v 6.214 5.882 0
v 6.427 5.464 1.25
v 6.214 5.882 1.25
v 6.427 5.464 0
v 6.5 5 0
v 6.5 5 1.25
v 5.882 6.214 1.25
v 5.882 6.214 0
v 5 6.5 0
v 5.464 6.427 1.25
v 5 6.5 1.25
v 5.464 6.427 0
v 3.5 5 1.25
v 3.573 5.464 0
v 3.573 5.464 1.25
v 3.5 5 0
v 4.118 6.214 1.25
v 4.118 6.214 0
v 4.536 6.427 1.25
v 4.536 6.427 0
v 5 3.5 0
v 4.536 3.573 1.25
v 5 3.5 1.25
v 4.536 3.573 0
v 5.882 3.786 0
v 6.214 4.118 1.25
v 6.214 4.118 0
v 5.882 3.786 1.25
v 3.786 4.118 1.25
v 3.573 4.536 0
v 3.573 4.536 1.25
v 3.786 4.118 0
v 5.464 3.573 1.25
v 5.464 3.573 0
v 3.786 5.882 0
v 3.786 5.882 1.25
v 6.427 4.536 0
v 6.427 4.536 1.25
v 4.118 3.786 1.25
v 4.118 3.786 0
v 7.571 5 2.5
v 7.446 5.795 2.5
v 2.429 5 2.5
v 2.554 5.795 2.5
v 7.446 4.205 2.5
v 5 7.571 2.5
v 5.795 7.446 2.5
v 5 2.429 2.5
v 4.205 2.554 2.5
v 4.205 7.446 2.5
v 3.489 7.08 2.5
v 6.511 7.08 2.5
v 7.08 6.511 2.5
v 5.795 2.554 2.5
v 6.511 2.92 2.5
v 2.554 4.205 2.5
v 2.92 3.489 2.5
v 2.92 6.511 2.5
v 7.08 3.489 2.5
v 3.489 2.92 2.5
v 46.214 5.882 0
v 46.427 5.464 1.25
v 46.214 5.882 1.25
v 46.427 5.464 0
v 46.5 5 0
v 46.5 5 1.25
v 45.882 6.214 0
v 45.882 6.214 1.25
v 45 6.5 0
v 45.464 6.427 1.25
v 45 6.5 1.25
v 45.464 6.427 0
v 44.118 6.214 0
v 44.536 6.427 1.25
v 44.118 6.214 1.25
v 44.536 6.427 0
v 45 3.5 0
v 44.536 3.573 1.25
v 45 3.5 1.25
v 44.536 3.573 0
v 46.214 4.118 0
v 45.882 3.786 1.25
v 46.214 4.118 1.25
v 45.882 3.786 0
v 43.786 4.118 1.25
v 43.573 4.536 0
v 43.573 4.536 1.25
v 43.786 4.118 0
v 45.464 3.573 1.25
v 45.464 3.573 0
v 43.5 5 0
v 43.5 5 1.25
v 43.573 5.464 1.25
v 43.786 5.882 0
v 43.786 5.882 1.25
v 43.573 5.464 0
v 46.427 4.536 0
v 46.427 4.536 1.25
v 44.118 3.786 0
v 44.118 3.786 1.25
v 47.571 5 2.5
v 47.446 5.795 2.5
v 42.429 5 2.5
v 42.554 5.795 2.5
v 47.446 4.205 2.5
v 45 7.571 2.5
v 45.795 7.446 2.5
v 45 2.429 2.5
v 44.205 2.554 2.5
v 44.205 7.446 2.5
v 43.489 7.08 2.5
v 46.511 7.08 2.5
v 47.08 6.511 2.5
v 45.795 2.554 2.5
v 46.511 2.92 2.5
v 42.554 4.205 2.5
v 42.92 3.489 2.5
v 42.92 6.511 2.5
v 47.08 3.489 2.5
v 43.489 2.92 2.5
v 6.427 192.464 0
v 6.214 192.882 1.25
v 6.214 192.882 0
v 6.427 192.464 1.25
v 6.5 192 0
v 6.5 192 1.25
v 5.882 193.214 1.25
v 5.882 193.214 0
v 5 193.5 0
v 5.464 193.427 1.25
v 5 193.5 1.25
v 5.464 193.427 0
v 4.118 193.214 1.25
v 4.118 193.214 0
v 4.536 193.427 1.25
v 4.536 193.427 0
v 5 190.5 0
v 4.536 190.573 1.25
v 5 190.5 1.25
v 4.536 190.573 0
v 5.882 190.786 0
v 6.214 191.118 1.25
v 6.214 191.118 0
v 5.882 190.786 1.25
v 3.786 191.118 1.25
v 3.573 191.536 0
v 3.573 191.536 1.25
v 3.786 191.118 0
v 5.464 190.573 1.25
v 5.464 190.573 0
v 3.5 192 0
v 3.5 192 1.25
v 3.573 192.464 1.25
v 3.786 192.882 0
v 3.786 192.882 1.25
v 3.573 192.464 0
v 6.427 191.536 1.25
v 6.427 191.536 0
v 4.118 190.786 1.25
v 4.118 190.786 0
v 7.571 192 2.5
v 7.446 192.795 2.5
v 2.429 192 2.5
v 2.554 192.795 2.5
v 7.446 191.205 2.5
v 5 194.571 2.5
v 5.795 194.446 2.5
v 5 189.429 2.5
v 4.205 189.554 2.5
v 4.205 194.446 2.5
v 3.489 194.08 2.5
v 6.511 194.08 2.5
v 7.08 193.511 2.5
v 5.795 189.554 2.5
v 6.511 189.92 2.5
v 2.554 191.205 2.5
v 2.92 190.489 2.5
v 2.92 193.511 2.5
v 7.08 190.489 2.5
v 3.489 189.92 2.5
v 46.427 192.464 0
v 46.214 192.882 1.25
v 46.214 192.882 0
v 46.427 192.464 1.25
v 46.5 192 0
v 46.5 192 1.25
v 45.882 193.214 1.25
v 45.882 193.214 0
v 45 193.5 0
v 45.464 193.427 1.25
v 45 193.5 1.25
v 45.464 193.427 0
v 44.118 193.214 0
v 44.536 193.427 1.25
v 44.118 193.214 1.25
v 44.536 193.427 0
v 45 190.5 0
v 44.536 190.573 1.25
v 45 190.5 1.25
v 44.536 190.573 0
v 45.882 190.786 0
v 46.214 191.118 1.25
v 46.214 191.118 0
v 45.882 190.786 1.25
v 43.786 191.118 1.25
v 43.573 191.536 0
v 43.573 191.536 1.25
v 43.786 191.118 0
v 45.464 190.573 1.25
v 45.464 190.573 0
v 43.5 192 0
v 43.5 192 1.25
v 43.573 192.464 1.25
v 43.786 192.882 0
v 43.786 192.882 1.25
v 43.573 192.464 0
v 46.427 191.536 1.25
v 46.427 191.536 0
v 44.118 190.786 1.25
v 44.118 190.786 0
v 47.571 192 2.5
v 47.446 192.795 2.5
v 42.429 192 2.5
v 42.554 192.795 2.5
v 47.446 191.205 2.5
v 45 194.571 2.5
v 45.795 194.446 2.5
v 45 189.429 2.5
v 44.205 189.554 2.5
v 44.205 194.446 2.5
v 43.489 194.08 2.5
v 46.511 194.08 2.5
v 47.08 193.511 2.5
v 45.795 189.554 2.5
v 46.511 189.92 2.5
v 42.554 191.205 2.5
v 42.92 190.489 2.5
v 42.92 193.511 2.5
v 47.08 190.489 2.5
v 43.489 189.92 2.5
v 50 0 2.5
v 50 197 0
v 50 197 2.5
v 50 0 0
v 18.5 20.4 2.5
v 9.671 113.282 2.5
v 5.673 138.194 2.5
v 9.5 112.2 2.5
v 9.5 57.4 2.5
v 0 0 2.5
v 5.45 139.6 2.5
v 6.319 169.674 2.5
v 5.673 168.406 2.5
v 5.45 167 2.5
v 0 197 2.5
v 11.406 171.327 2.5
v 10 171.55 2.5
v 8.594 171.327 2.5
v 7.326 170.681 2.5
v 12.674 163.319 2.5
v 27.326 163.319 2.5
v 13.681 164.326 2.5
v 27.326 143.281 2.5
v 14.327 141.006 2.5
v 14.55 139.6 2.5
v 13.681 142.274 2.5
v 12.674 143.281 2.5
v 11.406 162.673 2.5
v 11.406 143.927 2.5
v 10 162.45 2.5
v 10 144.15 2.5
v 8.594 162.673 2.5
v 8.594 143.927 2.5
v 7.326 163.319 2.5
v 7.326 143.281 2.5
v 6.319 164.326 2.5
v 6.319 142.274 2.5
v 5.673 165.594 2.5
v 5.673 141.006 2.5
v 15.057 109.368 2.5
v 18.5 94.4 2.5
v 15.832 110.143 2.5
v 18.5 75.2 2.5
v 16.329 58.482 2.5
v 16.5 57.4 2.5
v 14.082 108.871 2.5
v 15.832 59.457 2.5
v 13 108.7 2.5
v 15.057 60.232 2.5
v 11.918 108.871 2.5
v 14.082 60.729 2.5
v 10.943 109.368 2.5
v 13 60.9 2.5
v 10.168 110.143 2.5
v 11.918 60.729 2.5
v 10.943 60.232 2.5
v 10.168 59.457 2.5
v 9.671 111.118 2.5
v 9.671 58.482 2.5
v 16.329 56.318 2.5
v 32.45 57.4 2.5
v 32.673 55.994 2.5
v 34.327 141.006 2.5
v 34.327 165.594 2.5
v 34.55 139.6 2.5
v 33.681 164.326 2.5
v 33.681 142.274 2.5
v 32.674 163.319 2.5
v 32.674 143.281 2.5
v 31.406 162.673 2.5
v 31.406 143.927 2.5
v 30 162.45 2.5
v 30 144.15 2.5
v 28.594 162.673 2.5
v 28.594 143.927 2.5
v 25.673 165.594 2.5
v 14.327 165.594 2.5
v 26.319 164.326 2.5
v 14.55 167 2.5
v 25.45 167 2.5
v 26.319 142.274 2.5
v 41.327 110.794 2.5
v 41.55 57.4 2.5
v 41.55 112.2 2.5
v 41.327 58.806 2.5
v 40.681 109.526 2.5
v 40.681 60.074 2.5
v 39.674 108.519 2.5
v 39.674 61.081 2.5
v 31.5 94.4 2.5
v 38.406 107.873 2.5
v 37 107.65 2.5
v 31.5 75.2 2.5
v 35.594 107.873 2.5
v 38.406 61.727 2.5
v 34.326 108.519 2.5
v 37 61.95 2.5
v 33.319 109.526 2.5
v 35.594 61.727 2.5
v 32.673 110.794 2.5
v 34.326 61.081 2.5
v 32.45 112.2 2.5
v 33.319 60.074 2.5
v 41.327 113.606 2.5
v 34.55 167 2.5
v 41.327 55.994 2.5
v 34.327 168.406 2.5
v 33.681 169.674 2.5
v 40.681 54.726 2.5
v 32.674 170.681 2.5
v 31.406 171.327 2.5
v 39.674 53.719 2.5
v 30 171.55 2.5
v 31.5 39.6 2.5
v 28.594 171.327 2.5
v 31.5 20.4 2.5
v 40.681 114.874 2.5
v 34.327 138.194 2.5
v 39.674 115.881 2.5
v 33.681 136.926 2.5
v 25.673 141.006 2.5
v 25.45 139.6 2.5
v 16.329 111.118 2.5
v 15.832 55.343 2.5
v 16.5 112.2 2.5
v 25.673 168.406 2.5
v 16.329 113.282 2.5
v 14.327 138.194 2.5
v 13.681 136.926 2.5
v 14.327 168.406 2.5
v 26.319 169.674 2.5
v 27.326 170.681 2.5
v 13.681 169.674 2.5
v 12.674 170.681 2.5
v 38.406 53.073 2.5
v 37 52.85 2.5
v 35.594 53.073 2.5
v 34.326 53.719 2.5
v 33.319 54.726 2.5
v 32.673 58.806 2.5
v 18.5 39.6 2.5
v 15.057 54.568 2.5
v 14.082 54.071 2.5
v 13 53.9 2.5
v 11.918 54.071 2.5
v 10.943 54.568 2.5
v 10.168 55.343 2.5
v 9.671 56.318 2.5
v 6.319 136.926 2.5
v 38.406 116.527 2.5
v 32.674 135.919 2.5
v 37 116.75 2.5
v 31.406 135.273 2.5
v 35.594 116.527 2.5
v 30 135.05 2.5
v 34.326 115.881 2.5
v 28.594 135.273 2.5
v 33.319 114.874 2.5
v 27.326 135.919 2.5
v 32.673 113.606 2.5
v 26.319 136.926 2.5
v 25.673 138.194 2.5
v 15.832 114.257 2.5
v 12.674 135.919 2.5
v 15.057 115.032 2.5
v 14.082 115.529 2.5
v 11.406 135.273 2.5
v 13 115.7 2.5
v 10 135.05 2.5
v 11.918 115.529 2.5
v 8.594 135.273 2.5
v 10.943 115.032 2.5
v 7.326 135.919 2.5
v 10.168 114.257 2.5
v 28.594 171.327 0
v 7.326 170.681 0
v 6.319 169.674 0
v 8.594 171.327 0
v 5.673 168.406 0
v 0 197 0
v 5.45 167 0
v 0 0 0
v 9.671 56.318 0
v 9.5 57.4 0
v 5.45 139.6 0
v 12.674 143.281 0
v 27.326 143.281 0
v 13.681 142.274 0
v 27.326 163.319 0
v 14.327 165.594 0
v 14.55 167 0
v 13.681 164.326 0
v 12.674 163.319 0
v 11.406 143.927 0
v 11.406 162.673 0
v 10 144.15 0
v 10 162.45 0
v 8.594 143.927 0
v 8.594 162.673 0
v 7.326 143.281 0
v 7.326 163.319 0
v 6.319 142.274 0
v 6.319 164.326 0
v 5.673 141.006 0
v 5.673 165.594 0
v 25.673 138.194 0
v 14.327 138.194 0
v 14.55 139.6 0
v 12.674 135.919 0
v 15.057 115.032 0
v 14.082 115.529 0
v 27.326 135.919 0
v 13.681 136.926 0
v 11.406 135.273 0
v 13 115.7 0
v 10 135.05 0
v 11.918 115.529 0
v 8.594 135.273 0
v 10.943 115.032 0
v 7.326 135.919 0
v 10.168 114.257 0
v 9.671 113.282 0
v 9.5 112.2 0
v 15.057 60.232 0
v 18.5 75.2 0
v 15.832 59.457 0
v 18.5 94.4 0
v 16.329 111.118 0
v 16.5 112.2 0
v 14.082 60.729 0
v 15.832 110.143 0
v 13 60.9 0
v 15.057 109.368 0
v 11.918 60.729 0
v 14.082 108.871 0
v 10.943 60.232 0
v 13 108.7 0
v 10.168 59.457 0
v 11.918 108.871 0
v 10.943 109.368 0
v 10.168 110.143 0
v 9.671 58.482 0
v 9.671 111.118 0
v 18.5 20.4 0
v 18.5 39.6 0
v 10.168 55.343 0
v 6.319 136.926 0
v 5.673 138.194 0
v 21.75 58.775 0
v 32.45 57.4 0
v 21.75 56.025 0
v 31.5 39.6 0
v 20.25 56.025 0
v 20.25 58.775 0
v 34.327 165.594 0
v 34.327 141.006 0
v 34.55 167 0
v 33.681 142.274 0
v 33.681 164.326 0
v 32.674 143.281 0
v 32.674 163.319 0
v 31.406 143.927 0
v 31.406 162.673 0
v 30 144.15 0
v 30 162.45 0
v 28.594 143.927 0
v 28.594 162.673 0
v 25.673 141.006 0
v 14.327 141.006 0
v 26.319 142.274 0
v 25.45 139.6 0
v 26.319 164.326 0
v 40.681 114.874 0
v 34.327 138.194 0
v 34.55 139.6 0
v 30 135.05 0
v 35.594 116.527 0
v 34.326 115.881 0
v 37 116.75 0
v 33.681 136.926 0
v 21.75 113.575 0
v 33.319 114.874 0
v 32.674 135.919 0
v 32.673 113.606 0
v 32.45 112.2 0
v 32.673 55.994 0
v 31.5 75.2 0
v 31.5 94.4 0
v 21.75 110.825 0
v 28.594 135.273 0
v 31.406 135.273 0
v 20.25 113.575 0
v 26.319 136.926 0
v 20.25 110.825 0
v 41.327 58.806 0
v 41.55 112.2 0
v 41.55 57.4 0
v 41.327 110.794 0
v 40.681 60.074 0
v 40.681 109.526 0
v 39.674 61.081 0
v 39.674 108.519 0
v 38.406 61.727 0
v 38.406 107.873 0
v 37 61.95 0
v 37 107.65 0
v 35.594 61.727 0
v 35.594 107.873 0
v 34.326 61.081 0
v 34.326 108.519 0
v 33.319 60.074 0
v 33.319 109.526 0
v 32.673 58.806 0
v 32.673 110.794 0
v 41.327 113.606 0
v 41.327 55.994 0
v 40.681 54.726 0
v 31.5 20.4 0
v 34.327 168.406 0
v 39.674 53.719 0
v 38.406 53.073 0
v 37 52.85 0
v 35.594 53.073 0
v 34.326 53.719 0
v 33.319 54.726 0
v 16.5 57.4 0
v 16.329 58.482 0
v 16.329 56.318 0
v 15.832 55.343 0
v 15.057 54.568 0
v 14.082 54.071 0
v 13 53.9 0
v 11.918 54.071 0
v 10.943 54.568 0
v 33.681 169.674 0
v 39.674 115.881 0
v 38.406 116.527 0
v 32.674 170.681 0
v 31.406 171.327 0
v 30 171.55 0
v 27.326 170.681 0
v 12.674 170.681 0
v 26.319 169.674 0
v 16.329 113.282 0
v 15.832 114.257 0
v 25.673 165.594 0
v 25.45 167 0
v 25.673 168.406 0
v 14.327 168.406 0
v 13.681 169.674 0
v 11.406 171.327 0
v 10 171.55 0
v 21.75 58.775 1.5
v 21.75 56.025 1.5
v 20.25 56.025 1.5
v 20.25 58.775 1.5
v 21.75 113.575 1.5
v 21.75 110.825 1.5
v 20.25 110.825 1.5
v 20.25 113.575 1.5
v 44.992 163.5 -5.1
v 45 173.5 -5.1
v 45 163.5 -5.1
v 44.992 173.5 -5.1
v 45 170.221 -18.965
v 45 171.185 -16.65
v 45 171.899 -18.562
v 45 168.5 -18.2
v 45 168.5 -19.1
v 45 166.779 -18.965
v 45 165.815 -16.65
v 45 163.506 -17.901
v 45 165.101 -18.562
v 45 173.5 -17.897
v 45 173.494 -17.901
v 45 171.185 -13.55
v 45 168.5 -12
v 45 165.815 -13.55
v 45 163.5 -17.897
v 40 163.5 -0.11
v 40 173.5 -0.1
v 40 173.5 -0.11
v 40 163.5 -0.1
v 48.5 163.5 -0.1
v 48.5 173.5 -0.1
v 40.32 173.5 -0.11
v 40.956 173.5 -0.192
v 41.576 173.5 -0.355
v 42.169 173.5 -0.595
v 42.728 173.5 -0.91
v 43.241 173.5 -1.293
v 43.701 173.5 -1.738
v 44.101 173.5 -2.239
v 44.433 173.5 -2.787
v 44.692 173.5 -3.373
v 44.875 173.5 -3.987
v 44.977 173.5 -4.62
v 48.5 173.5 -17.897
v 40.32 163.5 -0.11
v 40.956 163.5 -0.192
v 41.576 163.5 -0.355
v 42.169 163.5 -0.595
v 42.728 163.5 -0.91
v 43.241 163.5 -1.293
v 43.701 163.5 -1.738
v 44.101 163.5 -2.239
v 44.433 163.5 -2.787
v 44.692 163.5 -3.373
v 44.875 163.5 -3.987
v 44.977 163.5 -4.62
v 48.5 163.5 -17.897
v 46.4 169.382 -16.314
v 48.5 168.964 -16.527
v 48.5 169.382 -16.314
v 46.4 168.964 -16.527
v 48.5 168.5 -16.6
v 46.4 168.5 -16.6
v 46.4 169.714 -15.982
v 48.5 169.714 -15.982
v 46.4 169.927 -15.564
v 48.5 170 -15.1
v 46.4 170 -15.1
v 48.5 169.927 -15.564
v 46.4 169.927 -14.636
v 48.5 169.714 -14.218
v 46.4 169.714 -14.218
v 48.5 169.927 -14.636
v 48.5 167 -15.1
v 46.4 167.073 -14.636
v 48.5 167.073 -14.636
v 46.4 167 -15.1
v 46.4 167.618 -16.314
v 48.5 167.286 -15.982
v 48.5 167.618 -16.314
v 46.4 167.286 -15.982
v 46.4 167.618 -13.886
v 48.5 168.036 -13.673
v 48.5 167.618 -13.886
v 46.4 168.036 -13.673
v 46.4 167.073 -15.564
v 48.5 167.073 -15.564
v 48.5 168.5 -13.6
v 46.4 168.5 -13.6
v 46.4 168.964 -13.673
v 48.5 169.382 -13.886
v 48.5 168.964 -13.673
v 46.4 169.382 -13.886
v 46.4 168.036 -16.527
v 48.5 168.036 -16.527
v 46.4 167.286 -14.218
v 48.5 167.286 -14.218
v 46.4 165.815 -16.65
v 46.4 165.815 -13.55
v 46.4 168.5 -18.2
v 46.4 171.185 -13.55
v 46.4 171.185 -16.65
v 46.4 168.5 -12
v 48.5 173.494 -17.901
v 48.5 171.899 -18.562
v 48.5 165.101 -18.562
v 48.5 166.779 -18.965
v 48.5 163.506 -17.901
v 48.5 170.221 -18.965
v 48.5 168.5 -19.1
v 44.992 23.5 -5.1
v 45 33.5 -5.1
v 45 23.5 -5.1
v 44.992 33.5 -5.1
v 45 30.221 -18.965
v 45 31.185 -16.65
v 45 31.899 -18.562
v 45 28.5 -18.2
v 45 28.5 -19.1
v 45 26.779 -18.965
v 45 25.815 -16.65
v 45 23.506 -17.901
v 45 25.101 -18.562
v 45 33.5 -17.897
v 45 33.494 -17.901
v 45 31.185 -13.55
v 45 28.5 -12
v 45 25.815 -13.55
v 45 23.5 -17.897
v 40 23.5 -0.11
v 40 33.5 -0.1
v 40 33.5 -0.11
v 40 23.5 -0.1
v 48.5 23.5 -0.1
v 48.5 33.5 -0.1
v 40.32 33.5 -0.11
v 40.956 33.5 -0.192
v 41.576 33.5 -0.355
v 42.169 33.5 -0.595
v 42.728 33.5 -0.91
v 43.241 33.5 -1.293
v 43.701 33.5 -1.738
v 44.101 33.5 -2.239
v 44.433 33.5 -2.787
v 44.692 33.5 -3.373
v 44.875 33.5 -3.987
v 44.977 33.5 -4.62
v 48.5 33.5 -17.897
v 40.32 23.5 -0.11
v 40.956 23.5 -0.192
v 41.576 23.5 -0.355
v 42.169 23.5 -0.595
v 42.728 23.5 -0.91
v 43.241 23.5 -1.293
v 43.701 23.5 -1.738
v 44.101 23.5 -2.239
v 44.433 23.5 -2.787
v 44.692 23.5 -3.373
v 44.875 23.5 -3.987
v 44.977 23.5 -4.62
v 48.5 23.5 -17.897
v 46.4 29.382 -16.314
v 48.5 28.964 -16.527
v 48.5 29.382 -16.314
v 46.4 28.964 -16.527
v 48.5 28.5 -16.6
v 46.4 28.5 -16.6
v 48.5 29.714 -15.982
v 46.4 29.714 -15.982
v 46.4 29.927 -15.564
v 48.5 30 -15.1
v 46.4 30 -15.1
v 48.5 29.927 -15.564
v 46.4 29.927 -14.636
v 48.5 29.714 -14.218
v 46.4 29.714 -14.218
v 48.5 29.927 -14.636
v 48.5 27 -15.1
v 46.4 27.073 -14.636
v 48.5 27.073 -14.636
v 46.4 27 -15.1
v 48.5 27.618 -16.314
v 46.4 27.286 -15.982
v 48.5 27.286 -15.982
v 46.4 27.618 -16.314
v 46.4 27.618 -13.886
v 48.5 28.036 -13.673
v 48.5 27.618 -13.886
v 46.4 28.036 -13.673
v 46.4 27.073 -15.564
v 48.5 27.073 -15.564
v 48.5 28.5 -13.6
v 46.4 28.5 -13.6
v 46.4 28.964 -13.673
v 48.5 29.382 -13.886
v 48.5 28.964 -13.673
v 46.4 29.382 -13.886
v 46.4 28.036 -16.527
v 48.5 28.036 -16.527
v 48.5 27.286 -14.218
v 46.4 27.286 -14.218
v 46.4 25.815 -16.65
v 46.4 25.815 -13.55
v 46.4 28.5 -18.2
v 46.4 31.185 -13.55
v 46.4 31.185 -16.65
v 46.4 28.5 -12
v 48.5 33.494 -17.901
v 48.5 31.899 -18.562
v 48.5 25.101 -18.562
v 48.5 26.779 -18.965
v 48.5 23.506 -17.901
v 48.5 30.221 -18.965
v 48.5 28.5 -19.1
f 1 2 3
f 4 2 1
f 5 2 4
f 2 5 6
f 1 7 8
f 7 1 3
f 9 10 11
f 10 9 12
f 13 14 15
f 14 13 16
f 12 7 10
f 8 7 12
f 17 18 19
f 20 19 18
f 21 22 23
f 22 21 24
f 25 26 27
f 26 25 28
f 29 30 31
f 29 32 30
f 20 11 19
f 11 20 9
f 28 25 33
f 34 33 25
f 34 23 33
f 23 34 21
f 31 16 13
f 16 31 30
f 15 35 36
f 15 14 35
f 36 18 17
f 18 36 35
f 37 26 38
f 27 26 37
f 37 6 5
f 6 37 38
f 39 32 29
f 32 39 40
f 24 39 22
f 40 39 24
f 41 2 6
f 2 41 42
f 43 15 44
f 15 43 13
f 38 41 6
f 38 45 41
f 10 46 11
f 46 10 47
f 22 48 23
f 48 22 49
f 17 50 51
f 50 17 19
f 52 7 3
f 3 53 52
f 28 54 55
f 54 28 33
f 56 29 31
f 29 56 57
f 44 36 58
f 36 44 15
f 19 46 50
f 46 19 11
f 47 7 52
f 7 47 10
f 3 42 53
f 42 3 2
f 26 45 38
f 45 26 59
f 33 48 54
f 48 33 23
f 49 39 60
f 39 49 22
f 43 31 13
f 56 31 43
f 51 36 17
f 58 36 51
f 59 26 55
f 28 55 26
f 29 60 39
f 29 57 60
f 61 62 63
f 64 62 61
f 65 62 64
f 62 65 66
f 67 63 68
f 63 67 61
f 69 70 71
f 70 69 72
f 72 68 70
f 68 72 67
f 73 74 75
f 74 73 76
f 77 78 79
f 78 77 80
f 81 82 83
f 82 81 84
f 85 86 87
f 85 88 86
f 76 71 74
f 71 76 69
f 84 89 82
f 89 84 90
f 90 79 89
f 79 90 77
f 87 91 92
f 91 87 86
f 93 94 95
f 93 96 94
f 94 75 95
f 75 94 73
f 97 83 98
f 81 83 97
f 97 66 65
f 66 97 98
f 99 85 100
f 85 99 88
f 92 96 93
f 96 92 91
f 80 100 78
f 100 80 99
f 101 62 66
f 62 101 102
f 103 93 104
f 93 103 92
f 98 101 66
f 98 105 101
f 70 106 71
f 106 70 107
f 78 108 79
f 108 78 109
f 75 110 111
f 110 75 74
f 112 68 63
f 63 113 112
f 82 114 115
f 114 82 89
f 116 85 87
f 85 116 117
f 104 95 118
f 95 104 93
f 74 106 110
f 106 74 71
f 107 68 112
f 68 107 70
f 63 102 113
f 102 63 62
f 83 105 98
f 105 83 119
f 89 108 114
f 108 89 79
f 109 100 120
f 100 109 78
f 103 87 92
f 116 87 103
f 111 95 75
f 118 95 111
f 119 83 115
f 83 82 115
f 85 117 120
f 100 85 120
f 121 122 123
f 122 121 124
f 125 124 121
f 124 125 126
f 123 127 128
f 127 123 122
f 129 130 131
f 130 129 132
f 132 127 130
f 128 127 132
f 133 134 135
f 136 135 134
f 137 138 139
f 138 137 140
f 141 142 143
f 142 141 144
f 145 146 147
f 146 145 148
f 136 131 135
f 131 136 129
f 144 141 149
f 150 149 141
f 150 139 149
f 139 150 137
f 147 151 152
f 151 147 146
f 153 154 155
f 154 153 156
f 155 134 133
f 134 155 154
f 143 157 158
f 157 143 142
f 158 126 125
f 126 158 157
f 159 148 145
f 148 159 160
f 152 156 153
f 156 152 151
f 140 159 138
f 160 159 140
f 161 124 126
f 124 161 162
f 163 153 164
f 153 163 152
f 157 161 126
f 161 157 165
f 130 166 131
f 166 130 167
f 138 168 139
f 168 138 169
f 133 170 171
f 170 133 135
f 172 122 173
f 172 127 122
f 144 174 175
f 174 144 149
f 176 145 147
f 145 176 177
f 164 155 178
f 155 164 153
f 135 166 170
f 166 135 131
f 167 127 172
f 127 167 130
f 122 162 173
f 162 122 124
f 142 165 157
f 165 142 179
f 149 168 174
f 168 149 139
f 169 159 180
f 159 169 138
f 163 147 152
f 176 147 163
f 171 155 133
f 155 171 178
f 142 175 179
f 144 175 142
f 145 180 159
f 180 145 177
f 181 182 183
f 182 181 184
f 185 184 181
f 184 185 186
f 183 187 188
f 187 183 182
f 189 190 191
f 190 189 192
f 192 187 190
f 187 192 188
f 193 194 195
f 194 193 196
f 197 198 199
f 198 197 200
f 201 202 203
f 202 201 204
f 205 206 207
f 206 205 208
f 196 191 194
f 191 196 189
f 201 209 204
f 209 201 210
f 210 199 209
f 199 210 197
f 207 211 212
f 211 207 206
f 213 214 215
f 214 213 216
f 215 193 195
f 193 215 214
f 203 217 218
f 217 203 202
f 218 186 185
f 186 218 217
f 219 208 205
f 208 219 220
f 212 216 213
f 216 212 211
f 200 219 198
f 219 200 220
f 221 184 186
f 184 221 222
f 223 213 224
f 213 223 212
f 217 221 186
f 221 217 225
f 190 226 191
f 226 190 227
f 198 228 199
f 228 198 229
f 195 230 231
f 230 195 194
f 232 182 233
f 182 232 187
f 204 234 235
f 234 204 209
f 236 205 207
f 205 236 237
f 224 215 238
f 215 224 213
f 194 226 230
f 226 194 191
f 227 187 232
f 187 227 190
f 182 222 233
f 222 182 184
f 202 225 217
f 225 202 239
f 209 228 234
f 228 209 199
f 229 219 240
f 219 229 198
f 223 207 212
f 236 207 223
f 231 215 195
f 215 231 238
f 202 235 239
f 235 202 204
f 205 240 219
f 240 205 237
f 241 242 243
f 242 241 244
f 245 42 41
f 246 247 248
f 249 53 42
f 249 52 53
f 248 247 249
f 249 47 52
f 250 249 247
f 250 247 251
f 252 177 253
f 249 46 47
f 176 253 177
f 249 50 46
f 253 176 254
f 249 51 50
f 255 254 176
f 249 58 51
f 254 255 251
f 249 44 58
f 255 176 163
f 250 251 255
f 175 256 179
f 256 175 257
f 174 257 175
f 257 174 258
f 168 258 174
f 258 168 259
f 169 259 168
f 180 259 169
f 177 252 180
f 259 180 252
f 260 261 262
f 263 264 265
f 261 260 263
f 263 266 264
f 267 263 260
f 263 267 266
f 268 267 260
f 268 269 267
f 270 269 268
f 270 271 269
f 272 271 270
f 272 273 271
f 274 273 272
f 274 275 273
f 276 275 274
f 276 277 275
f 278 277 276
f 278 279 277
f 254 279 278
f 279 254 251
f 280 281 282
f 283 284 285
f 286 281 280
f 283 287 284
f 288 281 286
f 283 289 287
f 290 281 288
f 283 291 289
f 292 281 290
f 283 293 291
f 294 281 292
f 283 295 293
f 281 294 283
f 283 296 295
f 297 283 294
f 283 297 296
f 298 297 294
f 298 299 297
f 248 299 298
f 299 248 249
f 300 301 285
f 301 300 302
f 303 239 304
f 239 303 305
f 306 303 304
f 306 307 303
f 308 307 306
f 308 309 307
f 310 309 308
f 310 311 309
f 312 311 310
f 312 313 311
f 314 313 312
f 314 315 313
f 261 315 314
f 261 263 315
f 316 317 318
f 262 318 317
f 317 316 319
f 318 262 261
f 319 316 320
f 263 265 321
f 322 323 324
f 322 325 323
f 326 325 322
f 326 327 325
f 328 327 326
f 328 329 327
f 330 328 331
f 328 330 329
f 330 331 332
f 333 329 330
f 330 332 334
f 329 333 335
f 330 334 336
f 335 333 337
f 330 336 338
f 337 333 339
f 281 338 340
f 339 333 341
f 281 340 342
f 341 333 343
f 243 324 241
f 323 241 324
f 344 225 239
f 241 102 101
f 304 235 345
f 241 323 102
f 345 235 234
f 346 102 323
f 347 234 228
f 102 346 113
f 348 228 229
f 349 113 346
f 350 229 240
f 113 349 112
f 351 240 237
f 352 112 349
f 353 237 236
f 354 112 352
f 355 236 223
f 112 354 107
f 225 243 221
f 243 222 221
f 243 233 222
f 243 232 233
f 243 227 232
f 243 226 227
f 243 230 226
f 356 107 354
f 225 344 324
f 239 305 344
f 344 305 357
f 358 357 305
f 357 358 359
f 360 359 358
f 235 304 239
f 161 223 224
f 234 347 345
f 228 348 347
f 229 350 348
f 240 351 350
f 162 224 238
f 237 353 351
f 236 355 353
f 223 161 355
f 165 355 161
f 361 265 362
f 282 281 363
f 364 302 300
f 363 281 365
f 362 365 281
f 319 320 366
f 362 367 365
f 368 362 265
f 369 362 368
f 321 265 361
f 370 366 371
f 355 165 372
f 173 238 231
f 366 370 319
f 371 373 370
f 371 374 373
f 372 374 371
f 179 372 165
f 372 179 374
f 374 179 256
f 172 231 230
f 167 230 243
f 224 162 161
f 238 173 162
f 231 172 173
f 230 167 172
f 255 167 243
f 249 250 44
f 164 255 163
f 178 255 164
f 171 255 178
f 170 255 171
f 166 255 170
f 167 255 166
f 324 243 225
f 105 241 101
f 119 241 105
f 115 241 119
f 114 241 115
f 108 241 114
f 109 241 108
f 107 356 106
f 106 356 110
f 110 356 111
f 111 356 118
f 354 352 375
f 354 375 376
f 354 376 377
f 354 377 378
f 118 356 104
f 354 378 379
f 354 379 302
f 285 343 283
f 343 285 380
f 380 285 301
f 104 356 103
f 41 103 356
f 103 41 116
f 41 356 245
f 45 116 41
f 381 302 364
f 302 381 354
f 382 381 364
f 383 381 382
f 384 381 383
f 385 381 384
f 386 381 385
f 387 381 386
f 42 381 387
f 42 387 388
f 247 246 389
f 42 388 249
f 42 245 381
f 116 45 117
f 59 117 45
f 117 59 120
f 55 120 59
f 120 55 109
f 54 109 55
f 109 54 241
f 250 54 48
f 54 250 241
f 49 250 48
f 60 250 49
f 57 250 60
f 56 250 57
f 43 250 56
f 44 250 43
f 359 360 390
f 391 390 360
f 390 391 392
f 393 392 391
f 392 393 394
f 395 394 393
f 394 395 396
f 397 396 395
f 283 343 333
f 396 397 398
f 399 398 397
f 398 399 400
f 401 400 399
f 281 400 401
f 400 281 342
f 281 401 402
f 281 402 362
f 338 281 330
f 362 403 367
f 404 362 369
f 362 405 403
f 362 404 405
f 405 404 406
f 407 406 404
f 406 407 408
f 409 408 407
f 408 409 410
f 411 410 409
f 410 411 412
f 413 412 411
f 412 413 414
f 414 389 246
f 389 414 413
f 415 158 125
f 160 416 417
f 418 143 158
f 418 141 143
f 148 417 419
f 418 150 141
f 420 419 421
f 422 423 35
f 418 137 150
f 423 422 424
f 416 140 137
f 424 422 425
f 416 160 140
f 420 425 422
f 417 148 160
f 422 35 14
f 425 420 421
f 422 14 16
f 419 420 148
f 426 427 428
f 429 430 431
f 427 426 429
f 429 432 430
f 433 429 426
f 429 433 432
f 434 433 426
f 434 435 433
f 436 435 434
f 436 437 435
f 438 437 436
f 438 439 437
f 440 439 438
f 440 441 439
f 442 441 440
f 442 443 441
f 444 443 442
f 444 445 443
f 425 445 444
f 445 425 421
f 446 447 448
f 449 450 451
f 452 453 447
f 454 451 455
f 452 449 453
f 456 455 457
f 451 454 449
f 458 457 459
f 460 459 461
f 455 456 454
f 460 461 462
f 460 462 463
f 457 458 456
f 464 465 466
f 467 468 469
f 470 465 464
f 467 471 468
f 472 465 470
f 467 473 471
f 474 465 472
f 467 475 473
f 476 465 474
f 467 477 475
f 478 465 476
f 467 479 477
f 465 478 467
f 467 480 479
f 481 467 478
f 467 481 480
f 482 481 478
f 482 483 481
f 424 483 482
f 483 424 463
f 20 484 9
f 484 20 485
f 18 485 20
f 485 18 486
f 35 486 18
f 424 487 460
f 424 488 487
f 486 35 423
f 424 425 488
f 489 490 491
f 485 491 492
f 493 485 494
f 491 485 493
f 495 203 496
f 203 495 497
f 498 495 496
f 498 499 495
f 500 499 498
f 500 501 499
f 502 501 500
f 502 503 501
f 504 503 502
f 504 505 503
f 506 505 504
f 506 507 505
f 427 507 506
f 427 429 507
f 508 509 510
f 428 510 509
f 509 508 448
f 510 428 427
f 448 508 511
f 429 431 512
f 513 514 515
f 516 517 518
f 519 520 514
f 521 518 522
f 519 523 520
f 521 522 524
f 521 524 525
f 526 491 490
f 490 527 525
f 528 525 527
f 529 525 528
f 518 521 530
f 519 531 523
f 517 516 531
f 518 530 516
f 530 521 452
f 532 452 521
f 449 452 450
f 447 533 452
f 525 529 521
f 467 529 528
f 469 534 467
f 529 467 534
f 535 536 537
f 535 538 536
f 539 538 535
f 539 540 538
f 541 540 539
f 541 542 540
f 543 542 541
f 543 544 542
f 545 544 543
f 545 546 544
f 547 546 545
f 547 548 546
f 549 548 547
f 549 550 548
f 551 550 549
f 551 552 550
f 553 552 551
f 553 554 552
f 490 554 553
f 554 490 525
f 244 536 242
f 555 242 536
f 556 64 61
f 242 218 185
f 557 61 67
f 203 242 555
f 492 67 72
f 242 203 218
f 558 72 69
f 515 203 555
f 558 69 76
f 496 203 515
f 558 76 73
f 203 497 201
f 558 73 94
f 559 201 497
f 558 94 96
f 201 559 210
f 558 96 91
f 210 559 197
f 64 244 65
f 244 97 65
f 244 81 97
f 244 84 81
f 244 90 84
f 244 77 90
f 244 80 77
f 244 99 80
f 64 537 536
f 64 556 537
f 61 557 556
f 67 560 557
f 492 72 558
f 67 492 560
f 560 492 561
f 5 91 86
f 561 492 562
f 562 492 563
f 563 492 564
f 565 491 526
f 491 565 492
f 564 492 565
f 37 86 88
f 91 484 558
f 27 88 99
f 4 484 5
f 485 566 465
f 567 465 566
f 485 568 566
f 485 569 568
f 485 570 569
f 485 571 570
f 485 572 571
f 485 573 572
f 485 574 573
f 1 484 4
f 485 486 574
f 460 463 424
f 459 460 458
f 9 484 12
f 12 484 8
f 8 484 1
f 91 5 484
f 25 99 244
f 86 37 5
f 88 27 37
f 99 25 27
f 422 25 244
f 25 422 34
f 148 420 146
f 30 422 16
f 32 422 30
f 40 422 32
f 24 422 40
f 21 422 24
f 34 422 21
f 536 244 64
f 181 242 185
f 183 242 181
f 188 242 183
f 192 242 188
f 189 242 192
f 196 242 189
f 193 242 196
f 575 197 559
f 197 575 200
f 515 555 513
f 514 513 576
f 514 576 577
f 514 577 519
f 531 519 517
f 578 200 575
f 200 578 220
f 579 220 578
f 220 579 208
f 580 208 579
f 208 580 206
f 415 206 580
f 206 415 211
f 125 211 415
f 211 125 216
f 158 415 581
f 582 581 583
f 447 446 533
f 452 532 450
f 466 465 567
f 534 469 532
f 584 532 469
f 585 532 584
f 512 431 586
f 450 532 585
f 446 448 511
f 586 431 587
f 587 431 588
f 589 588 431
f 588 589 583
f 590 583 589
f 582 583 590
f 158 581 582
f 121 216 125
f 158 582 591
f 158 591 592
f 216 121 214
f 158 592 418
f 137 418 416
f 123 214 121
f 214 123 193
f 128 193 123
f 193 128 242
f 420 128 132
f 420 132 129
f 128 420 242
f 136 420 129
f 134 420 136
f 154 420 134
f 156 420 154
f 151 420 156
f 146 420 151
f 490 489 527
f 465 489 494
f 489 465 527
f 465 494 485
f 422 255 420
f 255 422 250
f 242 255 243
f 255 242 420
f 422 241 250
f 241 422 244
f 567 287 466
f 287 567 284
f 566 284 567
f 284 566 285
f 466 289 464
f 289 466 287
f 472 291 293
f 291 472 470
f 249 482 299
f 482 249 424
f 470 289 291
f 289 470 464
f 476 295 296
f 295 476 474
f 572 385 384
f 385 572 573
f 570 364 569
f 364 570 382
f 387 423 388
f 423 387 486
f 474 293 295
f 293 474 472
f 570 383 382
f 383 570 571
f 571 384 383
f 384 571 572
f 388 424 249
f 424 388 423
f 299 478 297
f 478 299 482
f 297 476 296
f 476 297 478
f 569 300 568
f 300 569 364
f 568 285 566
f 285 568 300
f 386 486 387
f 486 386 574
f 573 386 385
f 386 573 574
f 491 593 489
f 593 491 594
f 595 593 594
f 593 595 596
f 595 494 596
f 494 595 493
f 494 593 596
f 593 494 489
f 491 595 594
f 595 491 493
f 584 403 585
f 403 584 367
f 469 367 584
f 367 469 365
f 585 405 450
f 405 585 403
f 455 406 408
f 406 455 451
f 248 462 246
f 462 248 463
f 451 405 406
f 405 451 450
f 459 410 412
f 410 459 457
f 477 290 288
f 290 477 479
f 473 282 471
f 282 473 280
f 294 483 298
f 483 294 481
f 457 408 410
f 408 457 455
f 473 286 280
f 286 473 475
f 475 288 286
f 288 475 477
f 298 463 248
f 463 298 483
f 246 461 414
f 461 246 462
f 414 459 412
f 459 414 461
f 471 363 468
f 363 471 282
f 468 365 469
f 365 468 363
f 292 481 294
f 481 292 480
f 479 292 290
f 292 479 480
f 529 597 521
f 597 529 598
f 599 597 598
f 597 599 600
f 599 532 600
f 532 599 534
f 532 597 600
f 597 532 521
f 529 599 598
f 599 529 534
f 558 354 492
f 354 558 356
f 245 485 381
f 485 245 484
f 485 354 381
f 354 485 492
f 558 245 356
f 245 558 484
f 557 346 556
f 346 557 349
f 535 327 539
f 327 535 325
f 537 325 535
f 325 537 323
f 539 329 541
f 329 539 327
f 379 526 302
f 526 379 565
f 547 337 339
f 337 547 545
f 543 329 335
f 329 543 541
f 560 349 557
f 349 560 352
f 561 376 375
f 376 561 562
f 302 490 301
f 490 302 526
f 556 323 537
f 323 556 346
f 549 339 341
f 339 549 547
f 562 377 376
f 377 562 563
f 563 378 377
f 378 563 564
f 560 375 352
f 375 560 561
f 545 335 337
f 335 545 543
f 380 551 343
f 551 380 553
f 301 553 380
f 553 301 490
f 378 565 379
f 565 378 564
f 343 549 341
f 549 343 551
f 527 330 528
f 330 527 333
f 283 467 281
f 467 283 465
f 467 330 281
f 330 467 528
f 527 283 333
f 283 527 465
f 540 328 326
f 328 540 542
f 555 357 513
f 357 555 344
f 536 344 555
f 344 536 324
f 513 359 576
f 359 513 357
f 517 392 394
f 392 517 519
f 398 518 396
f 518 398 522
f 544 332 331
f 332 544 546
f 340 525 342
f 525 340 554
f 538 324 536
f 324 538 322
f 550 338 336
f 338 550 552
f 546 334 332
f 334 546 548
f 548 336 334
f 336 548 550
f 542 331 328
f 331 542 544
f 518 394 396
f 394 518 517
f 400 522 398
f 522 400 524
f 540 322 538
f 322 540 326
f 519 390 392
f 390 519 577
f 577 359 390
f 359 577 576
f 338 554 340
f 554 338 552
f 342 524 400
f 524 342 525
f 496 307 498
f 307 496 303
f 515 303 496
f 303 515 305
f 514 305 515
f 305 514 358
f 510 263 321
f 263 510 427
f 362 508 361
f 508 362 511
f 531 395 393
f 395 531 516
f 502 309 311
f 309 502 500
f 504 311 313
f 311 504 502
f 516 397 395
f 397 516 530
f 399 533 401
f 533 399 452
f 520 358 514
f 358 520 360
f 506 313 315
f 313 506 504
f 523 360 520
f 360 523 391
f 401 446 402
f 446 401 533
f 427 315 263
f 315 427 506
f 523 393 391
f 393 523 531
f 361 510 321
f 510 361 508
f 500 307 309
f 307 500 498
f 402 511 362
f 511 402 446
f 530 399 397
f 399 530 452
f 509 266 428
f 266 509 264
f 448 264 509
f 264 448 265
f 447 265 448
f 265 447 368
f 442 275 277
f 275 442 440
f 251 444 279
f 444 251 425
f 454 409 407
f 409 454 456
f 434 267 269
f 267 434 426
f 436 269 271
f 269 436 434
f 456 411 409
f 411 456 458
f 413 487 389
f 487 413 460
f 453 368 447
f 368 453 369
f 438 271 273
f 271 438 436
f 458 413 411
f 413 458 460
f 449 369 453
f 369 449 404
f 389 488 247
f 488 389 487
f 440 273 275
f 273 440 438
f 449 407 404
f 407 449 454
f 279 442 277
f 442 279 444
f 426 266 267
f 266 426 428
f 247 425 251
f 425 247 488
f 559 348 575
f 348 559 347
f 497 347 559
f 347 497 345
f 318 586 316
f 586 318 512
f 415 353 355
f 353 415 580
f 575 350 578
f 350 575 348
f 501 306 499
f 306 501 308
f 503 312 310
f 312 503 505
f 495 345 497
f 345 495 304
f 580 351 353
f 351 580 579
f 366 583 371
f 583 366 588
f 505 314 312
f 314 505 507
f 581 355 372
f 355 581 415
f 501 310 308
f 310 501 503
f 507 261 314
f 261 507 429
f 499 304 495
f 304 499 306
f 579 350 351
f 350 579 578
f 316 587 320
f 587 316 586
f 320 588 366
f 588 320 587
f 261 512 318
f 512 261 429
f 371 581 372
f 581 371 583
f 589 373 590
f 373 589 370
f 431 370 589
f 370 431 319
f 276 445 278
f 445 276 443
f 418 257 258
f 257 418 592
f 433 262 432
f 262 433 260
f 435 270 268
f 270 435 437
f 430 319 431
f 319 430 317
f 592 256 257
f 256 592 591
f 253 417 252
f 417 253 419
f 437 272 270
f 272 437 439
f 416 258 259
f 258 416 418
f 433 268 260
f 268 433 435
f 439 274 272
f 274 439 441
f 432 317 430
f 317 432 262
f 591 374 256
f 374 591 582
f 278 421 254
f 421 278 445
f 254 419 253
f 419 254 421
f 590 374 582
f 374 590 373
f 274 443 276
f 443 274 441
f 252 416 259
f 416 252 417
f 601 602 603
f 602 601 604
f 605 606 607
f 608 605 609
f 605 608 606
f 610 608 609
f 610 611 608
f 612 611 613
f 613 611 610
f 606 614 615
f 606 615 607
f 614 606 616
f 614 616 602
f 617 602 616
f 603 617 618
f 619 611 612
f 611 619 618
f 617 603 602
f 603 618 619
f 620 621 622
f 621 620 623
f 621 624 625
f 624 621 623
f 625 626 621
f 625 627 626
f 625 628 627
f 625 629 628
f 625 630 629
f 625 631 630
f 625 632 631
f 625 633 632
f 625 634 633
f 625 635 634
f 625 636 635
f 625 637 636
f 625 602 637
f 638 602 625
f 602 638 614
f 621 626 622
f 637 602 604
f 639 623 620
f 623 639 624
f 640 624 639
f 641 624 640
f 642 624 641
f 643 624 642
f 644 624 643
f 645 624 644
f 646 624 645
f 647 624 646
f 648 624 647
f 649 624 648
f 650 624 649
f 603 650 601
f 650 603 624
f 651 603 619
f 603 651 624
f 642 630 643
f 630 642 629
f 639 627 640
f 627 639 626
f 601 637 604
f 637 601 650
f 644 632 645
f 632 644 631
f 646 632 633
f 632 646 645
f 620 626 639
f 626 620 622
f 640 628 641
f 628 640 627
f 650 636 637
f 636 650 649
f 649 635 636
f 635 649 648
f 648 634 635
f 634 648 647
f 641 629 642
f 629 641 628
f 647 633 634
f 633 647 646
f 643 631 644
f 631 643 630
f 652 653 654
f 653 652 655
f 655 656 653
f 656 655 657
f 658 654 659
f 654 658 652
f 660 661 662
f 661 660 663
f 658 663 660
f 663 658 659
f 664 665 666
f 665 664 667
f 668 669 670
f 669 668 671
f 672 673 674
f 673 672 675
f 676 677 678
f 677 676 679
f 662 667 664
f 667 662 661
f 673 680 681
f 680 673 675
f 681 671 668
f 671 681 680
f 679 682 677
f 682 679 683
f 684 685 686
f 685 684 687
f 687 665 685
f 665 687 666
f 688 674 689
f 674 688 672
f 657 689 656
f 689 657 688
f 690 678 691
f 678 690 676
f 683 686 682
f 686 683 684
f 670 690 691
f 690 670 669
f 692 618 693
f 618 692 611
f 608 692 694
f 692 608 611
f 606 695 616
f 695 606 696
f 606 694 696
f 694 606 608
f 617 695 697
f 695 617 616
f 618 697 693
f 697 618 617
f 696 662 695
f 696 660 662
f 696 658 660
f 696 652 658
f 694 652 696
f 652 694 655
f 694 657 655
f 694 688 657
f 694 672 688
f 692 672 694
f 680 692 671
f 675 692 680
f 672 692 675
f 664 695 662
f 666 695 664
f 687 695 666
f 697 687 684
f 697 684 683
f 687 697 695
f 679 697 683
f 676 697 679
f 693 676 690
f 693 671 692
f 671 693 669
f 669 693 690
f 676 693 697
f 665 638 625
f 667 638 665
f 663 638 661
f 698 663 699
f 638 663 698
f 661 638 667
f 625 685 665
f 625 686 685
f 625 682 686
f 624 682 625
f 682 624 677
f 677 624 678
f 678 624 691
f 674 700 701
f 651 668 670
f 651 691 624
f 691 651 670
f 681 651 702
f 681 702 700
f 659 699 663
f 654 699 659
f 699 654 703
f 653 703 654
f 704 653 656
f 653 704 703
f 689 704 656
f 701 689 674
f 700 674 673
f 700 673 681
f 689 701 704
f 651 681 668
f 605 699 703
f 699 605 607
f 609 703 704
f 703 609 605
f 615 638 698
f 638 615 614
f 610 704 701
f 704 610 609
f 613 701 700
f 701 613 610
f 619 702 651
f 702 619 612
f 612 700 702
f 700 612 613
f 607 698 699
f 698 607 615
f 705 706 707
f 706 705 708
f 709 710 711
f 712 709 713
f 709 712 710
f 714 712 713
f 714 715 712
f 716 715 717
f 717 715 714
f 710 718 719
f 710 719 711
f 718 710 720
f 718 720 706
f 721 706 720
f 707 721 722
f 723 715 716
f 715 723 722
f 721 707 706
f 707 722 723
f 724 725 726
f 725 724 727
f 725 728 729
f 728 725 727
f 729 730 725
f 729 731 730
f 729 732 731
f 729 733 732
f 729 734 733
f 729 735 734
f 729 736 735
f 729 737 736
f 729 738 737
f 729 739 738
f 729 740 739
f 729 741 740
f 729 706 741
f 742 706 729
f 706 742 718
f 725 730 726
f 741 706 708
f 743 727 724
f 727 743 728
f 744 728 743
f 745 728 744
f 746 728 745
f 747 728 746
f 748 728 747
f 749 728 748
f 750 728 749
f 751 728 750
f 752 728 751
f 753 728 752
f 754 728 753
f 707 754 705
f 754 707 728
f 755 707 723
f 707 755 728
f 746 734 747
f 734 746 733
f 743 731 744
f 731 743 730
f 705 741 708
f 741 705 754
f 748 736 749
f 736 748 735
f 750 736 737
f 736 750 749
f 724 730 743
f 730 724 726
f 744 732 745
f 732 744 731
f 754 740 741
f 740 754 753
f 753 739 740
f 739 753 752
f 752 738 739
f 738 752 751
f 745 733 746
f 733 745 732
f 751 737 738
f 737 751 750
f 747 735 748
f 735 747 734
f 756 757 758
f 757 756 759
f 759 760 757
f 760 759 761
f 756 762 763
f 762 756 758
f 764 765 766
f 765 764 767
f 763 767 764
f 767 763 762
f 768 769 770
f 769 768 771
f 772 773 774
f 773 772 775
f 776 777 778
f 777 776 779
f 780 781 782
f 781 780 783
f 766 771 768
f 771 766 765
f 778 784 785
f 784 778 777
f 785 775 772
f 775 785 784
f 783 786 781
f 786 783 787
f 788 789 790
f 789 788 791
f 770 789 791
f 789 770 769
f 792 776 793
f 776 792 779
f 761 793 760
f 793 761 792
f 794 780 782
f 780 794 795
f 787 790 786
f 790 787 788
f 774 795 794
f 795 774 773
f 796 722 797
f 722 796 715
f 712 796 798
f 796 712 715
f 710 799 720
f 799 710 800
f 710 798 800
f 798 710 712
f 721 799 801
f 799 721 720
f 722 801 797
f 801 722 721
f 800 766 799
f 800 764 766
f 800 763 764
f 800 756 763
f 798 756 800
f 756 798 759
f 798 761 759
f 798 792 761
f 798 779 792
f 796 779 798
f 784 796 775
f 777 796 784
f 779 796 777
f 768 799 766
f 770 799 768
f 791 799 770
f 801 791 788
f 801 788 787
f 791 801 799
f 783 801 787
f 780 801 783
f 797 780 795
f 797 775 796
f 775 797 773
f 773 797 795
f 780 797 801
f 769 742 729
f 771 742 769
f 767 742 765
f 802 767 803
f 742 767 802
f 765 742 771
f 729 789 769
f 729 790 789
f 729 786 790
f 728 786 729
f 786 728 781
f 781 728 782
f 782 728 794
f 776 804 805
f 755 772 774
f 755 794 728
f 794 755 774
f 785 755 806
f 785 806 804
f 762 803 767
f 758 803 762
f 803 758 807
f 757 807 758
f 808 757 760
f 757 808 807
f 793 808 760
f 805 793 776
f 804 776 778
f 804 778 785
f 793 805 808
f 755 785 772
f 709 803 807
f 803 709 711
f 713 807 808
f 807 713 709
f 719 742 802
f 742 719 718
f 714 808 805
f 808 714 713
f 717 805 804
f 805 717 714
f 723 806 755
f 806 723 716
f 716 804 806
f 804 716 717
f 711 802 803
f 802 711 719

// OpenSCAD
// file: kosmo.scad
panelHeight = 197;
thickness = 2.5;
mountHoleDiameter = 3.0;
jackHoleDiameter = 9.1;
ledHoleDiameter = 5;
pushButtonHoleDiameter = 7;
potHoleDiameter = 7;
switchHoleDiameter = 6;
rotarySwitchHoleDiameter = 9.1;
midiSocketHoleDiameter = 15;
colPaddingLeft = 20;
colPaddingRight = 10;
rowPadding = 30;

offsetTopBottom = 20; // Mounting area

n_rows = 6;
n_cols = width / 25;

rowsStart = rowPadding;
rowsEnd = panelHeight - rowPadding;

colsStart = colPaddingRight;
colsEnd = width - colPaddingLeft;


function row (i) = rowsStart + i * (rowsEnd - rowsStart) / (n_rows - 1);
function col (i) = colsStart + i * (colsEnd - colsStart) / (n_cols - 1);

module pcbHolders(){
  pcbHolder(width-5, panelHeight/2 + 140/2 - 5);
  pcbHolder(width-5, panelHeight/2 - 140/2 - 5);
}


module pcbHolder(x, y){
  pcbHole = 3;
  w = 10;
  h = 20;
  clearance = 15; // distance between panel and PCB hole
    
  translate([x, y, -0.1]) { // prevent gap
    rotate([0, 90, 0]) {
      union() {
        difference() {
          translate([0, 0, -5]) {               
            cube([5,w,5]);
          }
          translate([5, w+1, -5]) {
            rotate([90, 0, 0]) {
              cylinder(r=5, h=w+2,$fn=49);
            }
          }
        }
        /**/
        intersection() {
          difference() {
            cube([h, w, thickness+1]);
            translate([clearance, w/2, -0.9]){
              cylinder(r=pcbHole/2,  h=thickness+2, $fn=20);
              cylinder(r=3.1, h=2.3, $fn=6);
            }
          }
          translate([h/2-2, w/2, -1]) {
            cylinder(r=w+1, h=thickness+2, $fn=40);
          }
        }
        /**/
      }
    }
  }
}



module kosmoMountHoles(width, height) {
  punchHole(5, 5, mountHoleDiameter,true);
  punchHole((width-5), 5, mountHoleDiameter,true);
  punchHole(5, (height-5), mountHoleDiameter,true);
  punchHole((width-5), (height-5), mountHoleDiameter,true);
}


module punchHole(x, y, holeSize,chamfer=false){
  translate([x, y, -1]){
    cylinder(r=holeSize/2, h=thickness+2, $fn=20);
    if(chamfer) {
      translate([0, 0, 0.5]){
        cylinder(r2=holeSize, r1=0, h=holeSize+0.5, $fn=20);
      }
    }
  }
}

module midiSocket(x, y) {
    punchHole(x, y, midiSocketHoleDiameter);
}
module led(x, y) {
    punchHole(x, y, ledHoleDiameter);
}
module switch(x, y) { 
    punchHole(x, y, switchHoleDiameter);
}
module pushButton(x, y) { 
    punchHole(x, y, pushButtonHoleDiameter);
}
module rotarySwitch(x, y) { 
    punchHole(x, y, rotarySwitchHoleDiameter);
}
module sevenSegmentDisplay(x, y) {
    translate([x-6.5, y-9.6, -1]){
        cube([13, 19.2, thickness+2]);
    }
}

module pot(x, y) {
  translate([x, y , 0]) {
    union() {
      punchHole(0, 0, potHoleDiameter);
      translate([7.25, -2.75/2, -0.1]) {
        cube([1.5, 2.75, 1.6]);
      }
    }
  }
  echo(concat("pot at ", x, y));
}

module jack(x, y){
  punchHole(x, y, jackHoleDiameter);
    echo(concat("Jack at", x, y));
}

module panel(width) {
  difference() {
    cube([width, panelHeight, thickness]);
    kosmoMountHoles(width, panelHeight);
  }
}
// main file
width = 50;
include <kosmo.scad>
n_rows = 6;
//colPaddingLeft=13.5;

 difference() {
     panel(width);
     
    
     
     sevenSegmentDisplay(25, row(0)); // base
     jack(width -13, row(1));
     pot(13, row(1));
     
     sevenSegmentDisplay(25, row(2)); // scale
     jack(width -13, row(3));
     pot(13, row(3));
     
     jack(col(1), row(4));
     jack(col(0), row(4));
     jack(col(1), row(5));
     jack(col(0), row(5));
     
     
 }
pcbHolders();
